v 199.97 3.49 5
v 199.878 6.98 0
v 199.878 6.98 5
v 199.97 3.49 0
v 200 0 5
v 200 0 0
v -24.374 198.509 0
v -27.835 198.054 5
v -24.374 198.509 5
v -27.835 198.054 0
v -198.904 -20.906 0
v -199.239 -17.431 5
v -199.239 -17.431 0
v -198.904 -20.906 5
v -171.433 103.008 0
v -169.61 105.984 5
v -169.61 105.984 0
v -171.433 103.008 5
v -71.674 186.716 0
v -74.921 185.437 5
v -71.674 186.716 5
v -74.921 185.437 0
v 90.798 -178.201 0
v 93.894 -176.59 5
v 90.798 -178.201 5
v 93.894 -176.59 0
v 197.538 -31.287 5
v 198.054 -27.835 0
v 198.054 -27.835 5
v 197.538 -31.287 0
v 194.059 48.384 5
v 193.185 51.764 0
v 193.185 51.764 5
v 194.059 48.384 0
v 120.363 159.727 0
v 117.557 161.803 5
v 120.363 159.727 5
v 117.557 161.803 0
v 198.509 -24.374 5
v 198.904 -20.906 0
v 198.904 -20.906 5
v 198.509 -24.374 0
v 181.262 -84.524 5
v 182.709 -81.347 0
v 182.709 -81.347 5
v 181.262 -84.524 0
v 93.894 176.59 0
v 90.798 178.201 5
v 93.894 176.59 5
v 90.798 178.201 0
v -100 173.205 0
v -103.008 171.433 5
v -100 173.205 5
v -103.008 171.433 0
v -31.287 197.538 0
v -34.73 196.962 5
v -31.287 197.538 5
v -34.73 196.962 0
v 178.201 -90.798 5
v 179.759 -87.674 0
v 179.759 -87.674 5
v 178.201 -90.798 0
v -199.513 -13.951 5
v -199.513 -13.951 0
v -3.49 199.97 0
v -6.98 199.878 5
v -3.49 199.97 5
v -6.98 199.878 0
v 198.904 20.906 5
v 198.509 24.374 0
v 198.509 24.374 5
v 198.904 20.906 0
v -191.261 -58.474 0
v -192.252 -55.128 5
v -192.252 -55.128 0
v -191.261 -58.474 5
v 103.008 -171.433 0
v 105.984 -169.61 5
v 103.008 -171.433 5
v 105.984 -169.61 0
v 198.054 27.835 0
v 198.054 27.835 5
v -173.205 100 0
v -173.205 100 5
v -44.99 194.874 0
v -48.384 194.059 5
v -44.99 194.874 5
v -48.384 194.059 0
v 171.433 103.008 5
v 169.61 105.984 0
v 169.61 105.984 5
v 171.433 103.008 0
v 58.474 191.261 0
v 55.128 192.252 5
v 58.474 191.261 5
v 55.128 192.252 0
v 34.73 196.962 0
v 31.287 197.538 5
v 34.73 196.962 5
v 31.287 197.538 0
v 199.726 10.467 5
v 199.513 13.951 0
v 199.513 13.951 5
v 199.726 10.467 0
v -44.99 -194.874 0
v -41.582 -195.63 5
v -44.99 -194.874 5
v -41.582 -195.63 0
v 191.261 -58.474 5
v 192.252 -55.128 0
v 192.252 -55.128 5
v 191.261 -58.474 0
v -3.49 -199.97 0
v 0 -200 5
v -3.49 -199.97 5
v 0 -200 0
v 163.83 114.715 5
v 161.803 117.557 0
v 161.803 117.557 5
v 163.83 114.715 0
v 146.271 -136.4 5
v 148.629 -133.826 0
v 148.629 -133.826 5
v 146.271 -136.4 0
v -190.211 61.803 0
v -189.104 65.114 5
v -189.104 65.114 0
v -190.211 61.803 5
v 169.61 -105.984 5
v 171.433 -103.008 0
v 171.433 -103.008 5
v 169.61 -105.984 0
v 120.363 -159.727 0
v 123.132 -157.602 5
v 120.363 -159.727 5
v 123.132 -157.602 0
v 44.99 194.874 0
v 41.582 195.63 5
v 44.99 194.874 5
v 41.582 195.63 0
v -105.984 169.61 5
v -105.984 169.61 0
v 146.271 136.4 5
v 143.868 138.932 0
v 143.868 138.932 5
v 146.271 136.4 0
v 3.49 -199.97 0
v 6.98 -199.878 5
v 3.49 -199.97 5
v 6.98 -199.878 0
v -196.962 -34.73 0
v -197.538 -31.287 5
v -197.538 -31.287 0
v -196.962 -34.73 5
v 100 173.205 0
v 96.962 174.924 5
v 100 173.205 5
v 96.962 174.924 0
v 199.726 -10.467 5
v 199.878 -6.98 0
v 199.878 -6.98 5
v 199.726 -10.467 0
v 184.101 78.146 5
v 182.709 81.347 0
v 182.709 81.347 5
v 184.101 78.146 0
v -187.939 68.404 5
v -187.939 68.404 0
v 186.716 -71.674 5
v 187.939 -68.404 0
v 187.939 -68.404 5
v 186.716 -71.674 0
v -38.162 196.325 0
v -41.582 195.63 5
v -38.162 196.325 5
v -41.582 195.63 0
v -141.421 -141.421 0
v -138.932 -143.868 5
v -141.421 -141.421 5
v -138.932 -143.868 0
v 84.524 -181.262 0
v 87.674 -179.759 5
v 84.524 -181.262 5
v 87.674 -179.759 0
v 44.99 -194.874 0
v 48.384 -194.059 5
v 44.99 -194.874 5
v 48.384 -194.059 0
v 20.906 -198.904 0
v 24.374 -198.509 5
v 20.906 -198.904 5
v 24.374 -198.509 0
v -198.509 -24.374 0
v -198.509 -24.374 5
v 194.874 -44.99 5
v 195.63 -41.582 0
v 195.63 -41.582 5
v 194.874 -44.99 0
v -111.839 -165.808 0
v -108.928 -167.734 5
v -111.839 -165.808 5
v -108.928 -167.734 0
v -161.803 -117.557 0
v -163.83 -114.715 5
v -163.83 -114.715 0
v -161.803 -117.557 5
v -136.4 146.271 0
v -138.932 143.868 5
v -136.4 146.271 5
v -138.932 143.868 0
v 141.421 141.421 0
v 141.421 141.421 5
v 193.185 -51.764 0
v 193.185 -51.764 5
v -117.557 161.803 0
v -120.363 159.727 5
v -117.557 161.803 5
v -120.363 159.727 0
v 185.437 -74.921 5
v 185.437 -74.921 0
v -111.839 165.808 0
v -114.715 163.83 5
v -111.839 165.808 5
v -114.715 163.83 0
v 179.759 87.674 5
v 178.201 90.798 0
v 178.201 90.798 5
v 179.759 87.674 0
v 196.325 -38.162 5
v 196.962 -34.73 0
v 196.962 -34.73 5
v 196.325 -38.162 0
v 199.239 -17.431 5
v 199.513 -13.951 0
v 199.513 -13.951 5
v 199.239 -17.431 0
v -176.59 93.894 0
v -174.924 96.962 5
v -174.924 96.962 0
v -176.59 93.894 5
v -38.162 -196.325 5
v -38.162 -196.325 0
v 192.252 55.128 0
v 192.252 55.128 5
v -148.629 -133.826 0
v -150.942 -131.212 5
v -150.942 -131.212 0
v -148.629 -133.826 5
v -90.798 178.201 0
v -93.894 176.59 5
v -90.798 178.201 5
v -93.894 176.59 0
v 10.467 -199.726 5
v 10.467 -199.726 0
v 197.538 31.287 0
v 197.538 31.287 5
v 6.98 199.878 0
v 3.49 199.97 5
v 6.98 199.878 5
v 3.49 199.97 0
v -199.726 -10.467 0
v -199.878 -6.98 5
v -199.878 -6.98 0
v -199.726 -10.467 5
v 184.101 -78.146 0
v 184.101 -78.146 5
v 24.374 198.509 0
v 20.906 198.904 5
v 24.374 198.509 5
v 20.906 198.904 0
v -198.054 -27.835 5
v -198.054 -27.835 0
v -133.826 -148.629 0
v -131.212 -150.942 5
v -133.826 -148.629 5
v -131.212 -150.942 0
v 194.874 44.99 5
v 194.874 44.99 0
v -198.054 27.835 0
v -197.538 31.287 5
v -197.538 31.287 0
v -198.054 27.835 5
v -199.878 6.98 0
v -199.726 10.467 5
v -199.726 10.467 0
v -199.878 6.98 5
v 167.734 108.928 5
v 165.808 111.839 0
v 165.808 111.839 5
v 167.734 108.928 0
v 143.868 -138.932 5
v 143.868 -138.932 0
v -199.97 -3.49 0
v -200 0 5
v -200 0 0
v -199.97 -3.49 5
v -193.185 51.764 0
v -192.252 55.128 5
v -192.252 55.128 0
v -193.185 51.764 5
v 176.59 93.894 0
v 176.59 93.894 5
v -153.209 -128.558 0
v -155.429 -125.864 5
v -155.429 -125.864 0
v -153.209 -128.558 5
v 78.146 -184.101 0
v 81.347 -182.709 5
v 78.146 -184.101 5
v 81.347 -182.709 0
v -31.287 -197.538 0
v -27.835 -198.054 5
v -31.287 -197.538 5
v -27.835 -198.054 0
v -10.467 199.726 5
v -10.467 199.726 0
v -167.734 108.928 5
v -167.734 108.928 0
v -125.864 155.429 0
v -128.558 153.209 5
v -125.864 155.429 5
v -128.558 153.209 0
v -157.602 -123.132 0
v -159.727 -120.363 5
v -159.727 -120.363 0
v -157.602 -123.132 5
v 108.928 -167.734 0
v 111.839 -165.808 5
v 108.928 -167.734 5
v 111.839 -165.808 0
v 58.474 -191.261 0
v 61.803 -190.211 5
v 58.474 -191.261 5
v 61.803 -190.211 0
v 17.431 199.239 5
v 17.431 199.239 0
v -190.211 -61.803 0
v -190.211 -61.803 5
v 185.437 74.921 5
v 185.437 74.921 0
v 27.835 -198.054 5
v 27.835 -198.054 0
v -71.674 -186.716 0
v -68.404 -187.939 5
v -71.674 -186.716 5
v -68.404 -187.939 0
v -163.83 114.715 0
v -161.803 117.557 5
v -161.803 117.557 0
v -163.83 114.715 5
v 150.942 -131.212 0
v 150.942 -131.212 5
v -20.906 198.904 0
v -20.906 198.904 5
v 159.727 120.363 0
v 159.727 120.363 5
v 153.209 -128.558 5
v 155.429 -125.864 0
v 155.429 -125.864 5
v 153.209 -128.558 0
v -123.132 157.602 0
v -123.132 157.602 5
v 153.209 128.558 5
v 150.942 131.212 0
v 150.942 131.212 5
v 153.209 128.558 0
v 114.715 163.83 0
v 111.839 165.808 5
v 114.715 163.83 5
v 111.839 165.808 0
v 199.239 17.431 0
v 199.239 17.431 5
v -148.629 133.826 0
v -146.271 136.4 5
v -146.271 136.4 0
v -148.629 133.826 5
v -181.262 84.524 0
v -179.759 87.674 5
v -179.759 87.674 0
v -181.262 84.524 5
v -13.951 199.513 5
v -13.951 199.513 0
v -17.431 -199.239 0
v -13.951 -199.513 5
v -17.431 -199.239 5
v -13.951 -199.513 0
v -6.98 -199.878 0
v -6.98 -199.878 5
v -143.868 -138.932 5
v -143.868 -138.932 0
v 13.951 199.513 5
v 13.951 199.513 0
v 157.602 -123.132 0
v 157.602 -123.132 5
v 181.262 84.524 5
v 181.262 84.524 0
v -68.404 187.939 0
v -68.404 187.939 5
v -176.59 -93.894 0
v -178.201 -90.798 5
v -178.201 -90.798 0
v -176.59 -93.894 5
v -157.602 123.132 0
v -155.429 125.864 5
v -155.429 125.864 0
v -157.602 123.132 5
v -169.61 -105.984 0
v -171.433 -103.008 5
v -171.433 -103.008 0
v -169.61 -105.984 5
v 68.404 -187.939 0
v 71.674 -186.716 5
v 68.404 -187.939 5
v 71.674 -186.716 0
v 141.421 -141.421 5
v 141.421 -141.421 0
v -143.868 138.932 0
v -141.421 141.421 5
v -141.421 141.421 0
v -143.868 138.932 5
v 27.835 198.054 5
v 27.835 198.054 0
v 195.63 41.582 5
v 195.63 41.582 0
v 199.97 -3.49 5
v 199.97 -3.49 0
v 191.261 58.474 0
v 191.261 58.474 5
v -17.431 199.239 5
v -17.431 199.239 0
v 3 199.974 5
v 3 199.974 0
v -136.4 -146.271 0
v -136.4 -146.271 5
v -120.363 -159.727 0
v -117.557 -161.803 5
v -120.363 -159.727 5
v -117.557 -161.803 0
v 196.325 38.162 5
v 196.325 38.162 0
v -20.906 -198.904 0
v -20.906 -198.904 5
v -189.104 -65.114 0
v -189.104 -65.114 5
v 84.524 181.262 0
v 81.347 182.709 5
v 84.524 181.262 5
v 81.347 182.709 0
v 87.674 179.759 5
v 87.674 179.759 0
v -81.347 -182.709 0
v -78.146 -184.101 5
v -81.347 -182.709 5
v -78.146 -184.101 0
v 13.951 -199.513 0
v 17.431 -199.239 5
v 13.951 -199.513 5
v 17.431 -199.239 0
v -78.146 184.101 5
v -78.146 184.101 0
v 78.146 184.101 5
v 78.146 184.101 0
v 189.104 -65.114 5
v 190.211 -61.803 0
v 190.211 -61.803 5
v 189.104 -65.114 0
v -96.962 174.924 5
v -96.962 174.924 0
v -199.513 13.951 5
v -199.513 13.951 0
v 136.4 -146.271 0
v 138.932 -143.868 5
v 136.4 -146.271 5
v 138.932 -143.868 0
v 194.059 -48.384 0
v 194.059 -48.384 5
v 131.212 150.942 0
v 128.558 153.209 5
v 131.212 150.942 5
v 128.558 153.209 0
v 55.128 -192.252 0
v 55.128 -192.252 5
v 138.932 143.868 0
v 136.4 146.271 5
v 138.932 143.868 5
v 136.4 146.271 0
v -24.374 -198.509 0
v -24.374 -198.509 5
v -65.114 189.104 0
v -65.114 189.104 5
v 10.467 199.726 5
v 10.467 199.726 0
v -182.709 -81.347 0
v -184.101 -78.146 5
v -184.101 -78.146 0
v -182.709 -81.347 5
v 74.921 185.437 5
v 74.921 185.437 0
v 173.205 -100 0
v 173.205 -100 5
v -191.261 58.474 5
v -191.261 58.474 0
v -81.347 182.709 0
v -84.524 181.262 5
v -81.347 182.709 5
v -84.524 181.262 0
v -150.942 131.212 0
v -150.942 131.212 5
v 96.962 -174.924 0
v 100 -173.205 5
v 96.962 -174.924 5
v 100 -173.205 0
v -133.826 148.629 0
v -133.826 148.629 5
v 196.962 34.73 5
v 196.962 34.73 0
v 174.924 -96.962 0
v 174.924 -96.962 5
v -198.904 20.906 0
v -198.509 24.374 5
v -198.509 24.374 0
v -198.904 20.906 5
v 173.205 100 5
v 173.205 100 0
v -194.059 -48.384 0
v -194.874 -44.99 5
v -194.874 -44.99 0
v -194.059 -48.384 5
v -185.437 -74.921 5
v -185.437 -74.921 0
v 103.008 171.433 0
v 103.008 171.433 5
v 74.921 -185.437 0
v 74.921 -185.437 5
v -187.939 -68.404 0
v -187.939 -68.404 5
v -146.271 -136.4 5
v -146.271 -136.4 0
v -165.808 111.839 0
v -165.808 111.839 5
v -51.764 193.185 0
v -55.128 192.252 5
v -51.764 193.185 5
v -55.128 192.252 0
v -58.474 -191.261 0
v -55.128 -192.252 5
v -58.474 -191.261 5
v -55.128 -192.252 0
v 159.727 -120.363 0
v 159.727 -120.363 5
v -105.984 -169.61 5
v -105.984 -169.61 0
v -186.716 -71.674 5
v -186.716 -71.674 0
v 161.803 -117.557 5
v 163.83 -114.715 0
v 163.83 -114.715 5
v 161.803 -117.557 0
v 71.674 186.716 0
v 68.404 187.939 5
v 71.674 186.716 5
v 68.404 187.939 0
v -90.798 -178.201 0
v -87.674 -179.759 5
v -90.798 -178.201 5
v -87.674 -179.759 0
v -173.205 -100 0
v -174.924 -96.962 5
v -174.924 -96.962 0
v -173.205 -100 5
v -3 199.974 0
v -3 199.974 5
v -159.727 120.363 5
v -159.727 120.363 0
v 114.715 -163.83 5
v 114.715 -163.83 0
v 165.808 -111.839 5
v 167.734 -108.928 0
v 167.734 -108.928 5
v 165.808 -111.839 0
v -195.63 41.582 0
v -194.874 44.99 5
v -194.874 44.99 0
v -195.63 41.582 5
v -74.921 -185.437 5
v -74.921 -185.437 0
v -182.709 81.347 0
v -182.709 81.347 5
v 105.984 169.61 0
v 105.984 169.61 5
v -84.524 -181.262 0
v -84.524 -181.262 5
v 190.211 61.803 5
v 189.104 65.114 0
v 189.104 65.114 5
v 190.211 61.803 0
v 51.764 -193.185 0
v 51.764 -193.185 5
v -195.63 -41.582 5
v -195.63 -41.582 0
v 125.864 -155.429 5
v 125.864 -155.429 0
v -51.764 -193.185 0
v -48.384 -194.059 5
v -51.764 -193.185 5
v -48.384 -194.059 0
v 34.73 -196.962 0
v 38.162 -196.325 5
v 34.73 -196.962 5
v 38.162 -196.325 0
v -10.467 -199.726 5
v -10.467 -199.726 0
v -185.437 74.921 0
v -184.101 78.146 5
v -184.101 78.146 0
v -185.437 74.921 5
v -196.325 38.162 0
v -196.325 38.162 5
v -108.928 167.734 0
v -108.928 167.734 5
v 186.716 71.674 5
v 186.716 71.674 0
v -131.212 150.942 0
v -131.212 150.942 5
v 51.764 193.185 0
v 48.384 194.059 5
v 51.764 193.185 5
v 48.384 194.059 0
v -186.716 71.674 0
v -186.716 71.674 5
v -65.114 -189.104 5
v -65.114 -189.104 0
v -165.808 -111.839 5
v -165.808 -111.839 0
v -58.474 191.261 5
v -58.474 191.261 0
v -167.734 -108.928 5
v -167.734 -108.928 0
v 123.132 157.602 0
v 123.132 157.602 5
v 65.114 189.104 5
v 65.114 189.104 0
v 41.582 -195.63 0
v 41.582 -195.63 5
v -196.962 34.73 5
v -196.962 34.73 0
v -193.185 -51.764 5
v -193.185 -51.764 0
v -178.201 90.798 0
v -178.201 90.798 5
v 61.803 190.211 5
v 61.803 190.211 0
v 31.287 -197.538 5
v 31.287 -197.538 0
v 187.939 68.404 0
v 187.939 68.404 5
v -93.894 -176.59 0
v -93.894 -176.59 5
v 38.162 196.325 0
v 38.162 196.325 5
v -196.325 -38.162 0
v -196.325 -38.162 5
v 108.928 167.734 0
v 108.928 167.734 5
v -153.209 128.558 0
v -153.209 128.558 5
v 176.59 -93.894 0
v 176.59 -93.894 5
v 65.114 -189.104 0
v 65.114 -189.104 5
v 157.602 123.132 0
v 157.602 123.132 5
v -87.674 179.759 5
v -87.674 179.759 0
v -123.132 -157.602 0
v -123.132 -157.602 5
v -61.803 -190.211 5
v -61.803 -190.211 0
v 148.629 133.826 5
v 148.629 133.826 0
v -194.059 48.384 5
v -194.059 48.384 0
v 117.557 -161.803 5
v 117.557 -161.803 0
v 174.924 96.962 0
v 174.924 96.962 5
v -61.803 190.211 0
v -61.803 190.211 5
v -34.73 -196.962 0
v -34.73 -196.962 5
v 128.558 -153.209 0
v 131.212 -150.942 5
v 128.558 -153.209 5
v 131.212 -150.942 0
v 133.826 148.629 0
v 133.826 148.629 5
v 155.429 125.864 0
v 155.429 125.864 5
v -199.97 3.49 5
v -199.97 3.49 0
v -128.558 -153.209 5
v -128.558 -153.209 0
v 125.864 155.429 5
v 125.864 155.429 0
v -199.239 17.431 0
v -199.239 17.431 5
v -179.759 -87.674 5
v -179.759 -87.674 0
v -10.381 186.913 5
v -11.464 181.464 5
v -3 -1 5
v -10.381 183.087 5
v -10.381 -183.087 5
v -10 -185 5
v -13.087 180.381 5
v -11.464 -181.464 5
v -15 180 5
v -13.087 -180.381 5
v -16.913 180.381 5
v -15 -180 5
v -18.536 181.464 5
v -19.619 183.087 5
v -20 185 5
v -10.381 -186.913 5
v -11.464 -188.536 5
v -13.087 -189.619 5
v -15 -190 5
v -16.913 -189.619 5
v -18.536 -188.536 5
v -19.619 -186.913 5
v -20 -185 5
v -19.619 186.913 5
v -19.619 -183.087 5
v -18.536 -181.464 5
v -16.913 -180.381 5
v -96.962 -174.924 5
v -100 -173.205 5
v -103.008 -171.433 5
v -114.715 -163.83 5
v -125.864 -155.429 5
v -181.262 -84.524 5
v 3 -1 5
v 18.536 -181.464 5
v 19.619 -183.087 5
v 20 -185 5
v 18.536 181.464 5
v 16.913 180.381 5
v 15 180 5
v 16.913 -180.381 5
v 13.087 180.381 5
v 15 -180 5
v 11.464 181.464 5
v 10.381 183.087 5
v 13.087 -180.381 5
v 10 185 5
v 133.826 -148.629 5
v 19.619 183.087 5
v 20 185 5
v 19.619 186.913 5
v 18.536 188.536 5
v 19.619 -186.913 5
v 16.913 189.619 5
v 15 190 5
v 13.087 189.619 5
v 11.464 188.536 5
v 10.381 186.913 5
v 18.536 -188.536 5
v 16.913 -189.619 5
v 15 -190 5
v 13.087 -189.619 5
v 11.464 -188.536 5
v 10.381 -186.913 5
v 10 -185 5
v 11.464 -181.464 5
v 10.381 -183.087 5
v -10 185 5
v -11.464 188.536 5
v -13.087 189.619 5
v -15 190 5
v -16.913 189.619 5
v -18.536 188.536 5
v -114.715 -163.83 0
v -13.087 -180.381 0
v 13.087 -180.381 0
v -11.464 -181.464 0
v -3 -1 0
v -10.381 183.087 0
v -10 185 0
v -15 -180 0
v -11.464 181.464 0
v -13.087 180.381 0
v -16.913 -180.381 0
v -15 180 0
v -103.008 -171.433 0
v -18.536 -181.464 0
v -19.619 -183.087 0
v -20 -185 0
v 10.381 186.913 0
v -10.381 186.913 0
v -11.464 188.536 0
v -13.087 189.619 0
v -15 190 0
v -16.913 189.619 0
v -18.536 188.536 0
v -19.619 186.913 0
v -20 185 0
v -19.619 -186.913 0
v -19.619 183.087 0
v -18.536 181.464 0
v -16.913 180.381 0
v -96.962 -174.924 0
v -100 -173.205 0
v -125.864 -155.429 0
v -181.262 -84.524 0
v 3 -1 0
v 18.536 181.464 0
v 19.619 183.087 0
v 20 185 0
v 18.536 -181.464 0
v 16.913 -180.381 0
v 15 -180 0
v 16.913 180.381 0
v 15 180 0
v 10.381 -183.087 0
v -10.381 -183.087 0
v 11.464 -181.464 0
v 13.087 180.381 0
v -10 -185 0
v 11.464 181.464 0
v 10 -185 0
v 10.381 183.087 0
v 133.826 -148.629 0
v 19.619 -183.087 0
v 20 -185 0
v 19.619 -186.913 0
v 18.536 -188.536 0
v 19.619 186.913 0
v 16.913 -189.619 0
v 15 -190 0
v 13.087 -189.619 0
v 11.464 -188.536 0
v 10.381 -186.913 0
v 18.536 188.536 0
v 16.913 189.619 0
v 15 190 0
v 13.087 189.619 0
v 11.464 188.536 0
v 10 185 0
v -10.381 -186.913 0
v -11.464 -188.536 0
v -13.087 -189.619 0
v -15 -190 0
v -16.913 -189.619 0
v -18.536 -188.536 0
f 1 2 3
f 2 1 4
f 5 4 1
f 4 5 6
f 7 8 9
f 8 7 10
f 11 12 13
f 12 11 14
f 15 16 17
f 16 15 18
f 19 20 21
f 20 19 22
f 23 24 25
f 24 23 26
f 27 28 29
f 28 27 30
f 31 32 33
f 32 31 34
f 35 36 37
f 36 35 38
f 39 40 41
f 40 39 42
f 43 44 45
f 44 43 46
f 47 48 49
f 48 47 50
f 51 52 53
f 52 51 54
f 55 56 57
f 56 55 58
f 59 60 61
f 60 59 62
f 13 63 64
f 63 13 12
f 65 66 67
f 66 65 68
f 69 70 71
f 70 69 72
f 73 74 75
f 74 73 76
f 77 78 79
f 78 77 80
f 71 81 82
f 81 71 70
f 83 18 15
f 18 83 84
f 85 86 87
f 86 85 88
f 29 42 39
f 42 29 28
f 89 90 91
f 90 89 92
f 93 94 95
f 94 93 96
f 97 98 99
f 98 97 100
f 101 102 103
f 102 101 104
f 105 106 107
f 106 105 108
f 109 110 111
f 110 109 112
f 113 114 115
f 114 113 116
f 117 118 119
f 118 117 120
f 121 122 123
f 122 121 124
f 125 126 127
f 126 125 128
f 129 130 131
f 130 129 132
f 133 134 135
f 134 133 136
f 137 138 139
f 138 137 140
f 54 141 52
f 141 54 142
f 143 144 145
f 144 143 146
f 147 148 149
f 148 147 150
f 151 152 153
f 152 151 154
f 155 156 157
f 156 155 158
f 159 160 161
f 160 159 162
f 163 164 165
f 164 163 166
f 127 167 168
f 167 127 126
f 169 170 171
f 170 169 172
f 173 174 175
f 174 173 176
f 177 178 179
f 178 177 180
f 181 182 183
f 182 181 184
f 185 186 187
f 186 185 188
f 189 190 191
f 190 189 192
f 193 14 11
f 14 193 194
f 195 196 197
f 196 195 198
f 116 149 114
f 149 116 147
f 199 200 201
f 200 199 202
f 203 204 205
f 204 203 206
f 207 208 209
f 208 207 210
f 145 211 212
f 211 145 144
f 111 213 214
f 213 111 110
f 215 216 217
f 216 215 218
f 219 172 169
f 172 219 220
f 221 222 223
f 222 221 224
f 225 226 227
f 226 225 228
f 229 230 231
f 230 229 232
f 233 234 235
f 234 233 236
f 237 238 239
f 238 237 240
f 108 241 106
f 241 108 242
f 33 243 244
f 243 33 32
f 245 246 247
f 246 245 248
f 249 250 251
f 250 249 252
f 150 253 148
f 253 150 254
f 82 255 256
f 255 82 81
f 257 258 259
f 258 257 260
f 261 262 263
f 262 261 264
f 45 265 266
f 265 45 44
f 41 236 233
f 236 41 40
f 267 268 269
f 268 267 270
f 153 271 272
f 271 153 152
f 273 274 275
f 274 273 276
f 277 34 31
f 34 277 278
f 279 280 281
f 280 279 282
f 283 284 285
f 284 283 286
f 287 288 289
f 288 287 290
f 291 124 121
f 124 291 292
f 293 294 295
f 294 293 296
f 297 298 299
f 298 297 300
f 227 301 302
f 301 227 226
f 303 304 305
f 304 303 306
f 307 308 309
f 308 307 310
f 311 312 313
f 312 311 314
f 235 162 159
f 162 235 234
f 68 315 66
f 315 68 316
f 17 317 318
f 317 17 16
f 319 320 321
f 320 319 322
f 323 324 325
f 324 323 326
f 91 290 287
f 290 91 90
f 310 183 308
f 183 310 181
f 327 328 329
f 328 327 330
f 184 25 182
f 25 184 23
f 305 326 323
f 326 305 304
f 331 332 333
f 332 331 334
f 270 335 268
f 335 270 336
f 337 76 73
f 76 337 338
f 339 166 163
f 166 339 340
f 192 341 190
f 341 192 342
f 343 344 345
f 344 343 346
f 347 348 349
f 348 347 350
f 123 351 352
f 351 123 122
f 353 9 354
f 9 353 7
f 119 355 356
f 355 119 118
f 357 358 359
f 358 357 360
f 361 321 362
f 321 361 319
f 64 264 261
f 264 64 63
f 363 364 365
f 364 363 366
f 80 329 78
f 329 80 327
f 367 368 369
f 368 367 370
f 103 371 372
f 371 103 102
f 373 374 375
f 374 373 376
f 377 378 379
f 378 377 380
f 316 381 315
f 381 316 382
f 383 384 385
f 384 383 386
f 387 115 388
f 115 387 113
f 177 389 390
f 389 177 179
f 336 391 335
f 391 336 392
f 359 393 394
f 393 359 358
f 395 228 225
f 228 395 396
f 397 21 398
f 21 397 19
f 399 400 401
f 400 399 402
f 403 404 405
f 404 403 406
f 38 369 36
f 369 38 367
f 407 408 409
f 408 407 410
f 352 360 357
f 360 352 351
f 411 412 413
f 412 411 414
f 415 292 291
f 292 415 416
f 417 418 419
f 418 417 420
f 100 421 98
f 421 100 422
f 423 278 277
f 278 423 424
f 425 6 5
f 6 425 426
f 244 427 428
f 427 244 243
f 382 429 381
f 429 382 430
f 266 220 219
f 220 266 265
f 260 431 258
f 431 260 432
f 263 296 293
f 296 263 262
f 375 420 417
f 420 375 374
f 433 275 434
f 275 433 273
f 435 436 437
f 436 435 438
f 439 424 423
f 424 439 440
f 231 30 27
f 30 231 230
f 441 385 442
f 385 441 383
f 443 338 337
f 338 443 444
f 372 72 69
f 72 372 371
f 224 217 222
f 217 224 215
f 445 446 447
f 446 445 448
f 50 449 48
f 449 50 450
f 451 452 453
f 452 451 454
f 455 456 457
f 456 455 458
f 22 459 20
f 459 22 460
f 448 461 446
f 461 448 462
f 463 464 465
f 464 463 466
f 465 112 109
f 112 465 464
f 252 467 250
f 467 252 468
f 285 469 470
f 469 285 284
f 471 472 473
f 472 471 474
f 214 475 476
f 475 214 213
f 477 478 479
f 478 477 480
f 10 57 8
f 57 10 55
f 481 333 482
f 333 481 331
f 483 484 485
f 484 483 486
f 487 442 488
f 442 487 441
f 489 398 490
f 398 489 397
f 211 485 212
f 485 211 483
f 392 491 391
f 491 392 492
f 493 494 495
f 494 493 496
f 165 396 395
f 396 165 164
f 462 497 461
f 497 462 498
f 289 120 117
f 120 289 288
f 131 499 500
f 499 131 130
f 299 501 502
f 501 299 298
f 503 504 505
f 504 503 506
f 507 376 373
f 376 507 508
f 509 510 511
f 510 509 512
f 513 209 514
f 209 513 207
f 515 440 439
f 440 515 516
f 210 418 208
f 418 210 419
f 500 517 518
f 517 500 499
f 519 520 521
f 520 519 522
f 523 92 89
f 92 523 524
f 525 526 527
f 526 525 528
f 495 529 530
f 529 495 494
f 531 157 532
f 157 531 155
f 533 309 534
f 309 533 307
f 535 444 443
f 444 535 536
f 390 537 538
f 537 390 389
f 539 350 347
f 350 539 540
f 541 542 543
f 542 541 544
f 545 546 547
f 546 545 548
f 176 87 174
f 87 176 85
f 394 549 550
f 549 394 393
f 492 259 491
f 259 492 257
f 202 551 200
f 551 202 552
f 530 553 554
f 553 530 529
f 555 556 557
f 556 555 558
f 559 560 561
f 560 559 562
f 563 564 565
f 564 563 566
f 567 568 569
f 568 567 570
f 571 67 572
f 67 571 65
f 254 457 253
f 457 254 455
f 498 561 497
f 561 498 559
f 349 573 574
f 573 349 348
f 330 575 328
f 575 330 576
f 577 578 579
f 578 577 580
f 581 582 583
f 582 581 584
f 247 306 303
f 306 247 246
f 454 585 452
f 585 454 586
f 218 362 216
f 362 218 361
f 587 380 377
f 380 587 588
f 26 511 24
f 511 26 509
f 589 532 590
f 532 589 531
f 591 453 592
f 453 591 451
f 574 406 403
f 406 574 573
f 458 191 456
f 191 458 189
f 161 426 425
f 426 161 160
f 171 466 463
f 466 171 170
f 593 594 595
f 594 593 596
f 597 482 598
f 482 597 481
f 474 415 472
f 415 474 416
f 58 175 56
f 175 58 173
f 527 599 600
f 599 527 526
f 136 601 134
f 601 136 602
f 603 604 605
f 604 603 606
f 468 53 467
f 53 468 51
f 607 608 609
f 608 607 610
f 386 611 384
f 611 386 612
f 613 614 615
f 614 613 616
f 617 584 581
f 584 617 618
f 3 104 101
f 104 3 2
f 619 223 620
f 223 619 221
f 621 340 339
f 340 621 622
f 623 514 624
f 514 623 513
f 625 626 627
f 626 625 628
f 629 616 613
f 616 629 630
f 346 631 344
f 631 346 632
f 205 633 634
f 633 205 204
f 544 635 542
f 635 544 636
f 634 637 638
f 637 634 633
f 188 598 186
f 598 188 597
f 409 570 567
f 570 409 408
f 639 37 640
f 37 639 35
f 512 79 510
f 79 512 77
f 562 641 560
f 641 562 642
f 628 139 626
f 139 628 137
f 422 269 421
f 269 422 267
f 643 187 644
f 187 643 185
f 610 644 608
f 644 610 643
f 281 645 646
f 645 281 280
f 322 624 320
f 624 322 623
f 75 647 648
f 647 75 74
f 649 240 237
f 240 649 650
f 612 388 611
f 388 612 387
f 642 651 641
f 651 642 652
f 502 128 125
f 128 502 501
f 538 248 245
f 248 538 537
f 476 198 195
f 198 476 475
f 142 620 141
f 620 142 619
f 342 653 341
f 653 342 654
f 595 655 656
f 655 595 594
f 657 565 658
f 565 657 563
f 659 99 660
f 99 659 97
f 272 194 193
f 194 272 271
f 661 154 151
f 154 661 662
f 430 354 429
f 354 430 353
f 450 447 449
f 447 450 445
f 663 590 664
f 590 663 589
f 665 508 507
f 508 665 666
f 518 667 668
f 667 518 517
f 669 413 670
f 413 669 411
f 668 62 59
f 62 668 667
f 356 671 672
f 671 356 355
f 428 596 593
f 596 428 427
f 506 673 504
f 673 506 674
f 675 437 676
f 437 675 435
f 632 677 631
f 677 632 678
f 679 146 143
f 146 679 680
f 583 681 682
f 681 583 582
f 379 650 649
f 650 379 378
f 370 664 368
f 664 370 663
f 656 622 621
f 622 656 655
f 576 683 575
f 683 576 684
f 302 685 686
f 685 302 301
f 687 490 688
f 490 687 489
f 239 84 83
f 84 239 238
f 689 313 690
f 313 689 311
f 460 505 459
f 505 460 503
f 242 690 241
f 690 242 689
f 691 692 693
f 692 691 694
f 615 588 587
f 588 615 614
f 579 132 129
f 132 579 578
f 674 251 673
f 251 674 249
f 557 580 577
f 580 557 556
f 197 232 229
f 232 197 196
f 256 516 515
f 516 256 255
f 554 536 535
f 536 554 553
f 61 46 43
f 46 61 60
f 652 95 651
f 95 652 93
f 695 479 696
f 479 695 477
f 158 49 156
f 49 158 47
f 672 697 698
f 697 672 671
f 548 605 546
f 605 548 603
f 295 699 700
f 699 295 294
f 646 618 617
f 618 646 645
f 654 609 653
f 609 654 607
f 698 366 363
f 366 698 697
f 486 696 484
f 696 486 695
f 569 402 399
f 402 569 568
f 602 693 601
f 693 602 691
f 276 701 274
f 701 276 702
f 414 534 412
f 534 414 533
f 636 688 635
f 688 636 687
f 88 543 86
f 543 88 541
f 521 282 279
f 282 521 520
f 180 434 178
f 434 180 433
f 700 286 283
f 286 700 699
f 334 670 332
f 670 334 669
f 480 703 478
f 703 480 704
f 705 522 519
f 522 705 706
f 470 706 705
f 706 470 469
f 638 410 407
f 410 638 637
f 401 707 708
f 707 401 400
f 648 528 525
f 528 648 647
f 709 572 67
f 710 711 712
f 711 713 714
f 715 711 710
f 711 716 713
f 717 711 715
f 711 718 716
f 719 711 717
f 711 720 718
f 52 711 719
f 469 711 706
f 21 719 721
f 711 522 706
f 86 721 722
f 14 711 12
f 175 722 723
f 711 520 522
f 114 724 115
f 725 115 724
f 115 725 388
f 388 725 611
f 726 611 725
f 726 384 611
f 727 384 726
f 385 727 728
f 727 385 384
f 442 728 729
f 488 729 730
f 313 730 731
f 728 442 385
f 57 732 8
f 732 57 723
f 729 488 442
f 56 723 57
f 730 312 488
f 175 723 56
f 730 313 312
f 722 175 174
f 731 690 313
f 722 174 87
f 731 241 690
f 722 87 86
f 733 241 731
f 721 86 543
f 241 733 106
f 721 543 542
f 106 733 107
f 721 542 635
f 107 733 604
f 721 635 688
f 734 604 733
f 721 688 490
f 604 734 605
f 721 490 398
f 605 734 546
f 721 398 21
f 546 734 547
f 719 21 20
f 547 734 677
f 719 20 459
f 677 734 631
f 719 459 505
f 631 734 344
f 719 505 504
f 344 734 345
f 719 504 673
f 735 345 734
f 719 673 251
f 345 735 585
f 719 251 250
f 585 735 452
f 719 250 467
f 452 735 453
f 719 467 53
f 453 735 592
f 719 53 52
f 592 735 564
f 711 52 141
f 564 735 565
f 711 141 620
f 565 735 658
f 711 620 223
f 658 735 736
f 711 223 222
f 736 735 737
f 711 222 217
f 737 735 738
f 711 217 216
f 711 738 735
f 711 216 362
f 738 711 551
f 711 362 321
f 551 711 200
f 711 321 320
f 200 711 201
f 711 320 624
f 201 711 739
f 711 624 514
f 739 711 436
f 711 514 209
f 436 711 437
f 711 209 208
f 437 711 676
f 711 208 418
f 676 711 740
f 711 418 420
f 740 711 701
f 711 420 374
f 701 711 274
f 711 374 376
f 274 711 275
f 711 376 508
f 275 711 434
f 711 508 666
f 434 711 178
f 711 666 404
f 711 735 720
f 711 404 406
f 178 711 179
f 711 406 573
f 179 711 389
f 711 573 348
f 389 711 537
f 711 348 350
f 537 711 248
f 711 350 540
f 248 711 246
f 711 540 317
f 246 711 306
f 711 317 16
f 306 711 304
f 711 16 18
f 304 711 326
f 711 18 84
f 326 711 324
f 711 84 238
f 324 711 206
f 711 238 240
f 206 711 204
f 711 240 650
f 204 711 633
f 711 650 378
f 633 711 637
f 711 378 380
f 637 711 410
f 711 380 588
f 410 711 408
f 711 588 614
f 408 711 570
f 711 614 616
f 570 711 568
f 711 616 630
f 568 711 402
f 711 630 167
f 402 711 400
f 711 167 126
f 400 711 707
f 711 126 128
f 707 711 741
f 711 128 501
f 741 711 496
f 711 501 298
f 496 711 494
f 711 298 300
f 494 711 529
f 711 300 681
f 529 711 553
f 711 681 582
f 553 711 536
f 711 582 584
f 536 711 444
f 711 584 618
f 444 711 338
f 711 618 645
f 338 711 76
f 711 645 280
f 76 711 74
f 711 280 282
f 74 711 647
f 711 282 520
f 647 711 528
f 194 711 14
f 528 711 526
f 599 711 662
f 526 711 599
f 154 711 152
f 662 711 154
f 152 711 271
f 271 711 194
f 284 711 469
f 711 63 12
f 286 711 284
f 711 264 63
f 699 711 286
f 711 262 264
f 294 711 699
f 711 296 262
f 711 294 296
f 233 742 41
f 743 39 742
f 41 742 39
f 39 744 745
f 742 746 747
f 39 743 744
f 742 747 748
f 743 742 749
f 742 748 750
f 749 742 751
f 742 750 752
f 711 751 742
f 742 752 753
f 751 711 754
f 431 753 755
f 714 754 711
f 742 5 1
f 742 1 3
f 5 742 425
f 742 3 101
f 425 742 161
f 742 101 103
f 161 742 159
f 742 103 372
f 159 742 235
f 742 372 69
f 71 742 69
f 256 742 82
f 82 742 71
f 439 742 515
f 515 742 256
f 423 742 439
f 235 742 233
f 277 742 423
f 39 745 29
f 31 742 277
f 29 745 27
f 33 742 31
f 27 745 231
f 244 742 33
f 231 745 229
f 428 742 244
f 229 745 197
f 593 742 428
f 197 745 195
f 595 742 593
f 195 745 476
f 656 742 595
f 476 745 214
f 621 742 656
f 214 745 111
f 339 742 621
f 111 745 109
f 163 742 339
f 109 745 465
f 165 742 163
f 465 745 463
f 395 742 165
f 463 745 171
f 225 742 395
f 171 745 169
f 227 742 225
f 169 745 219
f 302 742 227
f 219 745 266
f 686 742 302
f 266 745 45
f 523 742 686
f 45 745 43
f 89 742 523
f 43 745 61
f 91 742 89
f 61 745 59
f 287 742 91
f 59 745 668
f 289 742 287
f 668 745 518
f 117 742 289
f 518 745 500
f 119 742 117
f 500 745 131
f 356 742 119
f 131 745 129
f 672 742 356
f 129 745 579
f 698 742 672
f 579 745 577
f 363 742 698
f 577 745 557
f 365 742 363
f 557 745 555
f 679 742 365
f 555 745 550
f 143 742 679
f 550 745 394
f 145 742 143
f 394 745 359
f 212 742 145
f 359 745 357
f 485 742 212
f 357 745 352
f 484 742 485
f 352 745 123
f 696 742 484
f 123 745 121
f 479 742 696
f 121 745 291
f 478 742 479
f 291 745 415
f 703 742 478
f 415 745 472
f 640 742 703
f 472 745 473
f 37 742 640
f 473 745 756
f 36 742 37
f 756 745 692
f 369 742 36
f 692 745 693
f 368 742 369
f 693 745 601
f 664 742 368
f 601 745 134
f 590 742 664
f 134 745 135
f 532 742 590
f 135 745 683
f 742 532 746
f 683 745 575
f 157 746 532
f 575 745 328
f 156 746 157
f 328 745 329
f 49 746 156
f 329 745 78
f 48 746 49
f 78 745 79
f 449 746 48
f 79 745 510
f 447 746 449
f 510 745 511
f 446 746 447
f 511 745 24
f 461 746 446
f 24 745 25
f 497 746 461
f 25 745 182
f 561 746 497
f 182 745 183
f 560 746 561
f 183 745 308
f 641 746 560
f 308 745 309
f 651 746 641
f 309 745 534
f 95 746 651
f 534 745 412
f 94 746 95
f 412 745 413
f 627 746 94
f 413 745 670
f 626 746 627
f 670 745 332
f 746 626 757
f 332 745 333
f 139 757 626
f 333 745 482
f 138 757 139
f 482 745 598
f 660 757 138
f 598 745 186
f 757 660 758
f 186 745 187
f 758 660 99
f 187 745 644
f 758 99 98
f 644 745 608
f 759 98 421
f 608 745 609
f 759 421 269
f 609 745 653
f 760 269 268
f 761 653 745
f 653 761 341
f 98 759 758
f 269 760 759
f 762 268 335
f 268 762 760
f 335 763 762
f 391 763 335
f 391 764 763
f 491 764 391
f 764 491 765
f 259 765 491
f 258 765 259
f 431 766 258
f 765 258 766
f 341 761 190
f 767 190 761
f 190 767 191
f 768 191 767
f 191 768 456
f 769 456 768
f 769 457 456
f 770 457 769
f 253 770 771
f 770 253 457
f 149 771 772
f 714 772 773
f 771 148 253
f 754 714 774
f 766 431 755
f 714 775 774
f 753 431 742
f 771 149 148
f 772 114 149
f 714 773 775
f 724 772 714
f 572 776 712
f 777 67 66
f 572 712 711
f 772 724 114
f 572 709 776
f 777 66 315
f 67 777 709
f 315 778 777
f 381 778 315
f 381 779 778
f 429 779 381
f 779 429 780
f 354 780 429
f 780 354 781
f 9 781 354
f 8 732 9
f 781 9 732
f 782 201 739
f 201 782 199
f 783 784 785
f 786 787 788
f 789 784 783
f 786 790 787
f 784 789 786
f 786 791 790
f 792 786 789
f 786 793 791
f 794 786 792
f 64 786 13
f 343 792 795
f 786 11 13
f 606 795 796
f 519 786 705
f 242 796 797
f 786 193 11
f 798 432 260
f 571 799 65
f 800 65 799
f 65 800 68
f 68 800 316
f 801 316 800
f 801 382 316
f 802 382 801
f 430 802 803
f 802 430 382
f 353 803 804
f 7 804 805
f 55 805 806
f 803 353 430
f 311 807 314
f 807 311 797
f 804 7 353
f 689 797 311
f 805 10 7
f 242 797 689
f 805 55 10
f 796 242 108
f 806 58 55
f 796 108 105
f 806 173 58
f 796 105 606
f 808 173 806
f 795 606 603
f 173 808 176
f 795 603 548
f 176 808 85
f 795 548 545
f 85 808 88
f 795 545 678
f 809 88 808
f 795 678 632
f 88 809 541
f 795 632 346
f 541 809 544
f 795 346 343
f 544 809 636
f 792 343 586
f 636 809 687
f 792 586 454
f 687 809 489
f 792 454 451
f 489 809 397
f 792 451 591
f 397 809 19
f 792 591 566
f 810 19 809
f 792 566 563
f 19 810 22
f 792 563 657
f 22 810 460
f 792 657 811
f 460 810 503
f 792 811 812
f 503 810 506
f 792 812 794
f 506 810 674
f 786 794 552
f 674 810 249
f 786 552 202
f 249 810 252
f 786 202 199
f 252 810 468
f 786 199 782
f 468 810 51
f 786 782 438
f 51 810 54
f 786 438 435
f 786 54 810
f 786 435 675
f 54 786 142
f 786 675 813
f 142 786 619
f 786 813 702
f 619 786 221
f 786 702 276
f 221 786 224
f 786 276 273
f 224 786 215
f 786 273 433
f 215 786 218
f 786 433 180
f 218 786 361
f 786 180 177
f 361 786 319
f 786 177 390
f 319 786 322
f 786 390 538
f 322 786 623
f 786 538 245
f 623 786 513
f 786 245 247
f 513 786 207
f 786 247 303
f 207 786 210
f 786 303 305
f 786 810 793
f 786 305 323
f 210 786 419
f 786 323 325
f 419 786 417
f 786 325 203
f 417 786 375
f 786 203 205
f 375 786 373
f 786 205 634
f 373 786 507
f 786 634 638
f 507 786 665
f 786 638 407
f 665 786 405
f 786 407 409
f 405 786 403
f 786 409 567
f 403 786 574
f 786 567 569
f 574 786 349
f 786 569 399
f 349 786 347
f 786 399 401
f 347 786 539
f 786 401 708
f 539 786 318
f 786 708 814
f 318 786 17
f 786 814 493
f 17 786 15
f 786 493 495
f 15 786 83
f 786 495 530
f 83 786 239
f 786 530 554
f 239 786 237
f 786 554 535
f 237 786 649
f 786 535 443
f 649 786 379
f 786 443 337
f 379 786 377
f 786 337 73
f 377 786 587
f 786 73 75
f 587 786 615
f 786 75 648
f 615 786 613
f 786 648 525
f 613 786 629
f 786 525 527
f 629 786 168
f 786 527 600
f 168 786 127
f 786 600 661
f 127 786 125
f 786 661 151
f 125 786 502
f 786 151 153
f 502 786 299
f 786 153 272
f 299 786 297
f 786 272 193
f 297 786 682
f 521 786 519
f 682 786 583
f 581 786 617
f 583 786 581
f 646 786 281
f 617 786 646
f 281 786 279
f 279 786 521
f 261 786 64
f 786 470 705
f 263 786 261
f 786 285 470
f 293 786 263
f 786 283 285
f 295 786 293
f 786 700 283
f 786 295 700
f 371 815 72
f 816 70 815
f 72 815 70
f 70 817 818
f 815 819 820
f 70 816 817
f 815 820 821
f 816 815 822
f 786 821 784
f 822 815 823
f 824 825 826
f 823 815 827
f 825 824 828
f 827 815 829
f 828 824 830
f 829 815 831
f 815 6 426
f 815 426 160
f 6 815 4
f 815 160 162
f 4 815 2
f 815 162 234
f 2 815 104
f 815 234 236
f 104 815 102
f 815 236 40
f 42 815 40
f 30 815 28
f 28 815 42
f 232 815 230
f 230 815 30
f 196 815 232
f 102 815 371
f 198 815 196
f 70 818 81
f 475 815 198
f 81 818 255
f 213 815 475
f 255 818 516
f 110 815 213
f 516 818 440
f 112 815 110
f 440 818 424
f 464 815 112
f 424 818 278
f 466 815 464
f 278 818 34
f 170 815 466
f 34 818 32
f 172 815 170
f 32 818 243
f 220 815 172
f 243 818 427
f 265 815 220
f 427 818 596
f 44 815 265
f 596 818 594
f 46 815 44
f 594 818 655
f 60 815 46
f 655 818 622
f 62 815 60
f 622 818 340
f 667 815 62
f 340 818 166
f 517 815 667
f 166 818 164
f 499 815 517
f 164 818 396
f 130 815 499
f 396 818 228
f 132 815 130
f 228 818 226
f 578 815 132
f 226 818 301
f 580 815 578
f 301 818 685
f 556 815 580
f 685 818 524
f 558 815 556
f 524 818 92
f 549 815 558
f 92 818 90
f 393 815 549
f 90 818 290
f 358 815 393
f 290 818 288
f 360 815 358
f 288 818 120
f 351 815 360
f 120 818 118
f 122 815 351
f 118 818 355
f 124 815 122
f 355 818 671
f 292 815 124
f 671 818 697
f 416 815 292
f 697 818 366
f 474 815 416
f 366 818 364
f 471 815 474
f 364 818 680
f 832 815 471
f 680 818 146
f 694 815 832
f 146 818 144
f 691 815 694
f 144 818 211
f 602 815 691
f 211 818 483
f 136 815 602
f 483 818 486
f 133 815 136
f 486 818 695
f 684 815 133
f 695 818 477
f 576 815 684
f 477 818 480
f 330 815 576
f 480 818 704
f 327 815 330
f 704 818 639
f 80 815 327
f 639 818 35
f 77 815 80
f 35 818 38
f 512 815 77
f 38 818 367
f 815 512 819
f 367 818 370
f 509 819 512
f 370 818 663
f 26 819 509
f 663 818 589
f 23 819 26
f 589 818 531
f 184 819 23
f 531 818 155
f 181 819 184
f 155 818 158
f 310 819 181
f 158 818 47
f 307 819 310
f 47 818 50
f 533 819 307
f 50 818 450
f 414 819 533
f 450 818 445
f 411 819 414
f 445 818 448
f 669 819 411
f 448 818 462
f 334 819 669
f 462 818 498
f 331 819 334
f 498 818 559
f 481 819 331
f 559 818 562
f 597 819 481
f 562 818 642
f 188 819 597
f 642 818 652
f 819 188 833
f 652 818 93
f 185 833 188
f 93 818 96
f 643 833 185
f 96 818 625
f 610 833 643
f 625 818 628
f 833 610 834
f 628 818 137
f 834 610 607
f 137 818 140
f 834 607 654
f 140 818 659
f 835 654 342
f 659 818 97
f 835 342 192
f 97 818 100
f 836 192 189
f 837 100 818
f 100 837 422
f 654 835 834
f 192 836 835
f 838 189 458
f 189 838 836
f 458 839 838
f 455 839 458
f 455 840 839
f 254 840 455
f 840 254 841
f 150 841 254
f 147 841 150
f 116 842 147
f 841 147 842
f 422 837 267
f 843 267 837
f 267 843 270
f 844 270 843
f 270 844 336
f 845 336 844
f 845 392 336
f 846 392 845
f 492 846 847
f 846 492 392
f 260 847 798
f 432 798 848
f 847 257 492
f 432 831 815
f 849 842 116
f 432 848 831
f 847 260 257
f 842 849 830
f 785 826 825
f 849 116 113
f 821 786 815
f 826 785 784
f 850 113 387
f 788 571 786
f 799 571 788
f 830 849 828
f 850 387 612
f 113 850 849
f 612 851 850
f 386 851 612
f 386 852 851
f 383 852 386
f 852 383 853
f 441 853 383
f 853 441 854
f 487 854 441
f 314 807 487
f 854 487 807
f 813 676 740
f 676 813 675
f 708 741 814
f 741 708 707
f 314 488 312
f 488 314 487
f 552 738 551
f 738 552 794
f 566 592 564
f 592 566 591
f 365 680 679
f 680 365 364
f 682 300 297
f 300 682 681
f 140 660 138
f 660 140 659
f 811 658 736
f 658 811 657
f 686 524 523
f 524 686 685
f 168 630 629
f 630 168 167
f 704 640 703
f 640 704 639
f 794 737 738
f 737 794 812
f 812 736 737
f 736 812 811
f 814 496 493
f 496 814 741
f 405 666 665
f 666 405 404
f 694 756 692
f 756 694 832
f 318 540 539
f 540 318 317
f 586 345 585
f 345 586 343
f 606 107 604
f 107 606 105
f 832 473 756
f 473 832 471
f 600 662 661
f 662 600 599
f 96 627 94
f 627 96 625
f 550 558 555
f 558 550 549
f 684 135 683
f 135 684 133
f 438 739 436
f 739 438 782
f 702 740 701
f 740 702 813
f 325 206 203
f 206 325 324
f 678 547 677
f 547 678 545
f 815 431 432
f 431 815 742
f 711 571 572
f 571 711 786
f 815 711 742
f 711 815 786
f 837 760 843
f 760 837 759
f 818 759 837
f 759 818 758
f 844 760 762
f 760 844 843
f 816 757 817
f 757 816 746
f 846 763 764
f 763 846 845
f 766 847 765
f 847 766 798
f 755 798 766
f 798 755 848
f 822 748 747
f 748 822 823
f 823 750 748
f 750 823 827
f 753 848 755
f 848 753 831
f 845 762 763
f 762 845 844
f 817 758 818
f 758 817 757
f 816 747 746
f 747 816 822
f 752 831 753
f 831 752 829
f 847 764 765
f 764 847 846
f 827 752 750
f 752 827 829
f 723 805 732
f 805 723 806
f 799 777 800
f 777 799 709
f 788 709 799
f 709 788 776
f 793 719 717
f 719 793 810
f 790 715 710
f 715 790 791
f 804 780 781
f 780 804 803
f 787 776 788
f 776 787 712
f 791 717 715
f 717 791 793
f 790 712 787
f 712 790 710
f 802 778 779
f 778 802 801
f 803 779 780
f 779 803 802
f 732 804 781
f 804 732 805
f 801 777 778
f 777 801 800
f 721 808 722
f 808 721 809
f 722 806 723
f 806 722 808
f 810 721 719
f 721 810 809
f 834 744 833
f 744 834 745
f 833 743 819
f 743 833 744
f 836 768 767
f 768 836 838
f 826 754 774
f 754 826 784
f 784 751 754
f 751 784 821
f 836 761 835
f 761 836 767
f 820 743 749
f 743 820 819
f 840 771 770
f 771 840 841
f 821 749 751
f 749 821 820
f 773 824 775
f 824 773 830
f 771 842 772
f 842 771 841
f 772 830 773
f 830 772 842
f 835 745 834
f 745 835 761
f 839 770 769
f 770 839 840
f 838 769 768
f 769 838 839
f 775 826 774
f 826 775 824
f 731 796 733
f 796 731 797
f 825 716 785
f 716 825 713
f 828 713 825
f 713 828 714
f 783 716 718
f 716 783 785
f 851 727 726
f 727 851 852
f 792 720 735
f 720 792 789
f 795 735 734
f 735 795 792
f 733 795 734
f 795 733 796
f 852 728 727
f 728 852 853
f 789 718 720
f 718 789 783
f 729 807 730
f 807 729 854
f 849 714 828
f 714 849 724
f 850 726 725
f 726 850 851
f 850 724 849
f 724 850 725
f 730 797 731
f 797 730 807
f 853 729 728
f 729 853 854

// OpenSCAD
// Outer diameter
R = 200;

difference () {
  cylinder(h=5, r=R, $fn=360); 
  translate ([-3, -1, -1]) cube([6, R+2, 7]);
  translate ([15, R-15, -1]) cylinder(h=7, r=5);
  translate ([-15, R-15, -1]) cylinder(h=7, r=5);
  translate ([15, 15-R, -1]) cylinder(h=7, r=5);
  translate ([-15, 15-R, -1]) cylinder(h=7, r=5);   
};
